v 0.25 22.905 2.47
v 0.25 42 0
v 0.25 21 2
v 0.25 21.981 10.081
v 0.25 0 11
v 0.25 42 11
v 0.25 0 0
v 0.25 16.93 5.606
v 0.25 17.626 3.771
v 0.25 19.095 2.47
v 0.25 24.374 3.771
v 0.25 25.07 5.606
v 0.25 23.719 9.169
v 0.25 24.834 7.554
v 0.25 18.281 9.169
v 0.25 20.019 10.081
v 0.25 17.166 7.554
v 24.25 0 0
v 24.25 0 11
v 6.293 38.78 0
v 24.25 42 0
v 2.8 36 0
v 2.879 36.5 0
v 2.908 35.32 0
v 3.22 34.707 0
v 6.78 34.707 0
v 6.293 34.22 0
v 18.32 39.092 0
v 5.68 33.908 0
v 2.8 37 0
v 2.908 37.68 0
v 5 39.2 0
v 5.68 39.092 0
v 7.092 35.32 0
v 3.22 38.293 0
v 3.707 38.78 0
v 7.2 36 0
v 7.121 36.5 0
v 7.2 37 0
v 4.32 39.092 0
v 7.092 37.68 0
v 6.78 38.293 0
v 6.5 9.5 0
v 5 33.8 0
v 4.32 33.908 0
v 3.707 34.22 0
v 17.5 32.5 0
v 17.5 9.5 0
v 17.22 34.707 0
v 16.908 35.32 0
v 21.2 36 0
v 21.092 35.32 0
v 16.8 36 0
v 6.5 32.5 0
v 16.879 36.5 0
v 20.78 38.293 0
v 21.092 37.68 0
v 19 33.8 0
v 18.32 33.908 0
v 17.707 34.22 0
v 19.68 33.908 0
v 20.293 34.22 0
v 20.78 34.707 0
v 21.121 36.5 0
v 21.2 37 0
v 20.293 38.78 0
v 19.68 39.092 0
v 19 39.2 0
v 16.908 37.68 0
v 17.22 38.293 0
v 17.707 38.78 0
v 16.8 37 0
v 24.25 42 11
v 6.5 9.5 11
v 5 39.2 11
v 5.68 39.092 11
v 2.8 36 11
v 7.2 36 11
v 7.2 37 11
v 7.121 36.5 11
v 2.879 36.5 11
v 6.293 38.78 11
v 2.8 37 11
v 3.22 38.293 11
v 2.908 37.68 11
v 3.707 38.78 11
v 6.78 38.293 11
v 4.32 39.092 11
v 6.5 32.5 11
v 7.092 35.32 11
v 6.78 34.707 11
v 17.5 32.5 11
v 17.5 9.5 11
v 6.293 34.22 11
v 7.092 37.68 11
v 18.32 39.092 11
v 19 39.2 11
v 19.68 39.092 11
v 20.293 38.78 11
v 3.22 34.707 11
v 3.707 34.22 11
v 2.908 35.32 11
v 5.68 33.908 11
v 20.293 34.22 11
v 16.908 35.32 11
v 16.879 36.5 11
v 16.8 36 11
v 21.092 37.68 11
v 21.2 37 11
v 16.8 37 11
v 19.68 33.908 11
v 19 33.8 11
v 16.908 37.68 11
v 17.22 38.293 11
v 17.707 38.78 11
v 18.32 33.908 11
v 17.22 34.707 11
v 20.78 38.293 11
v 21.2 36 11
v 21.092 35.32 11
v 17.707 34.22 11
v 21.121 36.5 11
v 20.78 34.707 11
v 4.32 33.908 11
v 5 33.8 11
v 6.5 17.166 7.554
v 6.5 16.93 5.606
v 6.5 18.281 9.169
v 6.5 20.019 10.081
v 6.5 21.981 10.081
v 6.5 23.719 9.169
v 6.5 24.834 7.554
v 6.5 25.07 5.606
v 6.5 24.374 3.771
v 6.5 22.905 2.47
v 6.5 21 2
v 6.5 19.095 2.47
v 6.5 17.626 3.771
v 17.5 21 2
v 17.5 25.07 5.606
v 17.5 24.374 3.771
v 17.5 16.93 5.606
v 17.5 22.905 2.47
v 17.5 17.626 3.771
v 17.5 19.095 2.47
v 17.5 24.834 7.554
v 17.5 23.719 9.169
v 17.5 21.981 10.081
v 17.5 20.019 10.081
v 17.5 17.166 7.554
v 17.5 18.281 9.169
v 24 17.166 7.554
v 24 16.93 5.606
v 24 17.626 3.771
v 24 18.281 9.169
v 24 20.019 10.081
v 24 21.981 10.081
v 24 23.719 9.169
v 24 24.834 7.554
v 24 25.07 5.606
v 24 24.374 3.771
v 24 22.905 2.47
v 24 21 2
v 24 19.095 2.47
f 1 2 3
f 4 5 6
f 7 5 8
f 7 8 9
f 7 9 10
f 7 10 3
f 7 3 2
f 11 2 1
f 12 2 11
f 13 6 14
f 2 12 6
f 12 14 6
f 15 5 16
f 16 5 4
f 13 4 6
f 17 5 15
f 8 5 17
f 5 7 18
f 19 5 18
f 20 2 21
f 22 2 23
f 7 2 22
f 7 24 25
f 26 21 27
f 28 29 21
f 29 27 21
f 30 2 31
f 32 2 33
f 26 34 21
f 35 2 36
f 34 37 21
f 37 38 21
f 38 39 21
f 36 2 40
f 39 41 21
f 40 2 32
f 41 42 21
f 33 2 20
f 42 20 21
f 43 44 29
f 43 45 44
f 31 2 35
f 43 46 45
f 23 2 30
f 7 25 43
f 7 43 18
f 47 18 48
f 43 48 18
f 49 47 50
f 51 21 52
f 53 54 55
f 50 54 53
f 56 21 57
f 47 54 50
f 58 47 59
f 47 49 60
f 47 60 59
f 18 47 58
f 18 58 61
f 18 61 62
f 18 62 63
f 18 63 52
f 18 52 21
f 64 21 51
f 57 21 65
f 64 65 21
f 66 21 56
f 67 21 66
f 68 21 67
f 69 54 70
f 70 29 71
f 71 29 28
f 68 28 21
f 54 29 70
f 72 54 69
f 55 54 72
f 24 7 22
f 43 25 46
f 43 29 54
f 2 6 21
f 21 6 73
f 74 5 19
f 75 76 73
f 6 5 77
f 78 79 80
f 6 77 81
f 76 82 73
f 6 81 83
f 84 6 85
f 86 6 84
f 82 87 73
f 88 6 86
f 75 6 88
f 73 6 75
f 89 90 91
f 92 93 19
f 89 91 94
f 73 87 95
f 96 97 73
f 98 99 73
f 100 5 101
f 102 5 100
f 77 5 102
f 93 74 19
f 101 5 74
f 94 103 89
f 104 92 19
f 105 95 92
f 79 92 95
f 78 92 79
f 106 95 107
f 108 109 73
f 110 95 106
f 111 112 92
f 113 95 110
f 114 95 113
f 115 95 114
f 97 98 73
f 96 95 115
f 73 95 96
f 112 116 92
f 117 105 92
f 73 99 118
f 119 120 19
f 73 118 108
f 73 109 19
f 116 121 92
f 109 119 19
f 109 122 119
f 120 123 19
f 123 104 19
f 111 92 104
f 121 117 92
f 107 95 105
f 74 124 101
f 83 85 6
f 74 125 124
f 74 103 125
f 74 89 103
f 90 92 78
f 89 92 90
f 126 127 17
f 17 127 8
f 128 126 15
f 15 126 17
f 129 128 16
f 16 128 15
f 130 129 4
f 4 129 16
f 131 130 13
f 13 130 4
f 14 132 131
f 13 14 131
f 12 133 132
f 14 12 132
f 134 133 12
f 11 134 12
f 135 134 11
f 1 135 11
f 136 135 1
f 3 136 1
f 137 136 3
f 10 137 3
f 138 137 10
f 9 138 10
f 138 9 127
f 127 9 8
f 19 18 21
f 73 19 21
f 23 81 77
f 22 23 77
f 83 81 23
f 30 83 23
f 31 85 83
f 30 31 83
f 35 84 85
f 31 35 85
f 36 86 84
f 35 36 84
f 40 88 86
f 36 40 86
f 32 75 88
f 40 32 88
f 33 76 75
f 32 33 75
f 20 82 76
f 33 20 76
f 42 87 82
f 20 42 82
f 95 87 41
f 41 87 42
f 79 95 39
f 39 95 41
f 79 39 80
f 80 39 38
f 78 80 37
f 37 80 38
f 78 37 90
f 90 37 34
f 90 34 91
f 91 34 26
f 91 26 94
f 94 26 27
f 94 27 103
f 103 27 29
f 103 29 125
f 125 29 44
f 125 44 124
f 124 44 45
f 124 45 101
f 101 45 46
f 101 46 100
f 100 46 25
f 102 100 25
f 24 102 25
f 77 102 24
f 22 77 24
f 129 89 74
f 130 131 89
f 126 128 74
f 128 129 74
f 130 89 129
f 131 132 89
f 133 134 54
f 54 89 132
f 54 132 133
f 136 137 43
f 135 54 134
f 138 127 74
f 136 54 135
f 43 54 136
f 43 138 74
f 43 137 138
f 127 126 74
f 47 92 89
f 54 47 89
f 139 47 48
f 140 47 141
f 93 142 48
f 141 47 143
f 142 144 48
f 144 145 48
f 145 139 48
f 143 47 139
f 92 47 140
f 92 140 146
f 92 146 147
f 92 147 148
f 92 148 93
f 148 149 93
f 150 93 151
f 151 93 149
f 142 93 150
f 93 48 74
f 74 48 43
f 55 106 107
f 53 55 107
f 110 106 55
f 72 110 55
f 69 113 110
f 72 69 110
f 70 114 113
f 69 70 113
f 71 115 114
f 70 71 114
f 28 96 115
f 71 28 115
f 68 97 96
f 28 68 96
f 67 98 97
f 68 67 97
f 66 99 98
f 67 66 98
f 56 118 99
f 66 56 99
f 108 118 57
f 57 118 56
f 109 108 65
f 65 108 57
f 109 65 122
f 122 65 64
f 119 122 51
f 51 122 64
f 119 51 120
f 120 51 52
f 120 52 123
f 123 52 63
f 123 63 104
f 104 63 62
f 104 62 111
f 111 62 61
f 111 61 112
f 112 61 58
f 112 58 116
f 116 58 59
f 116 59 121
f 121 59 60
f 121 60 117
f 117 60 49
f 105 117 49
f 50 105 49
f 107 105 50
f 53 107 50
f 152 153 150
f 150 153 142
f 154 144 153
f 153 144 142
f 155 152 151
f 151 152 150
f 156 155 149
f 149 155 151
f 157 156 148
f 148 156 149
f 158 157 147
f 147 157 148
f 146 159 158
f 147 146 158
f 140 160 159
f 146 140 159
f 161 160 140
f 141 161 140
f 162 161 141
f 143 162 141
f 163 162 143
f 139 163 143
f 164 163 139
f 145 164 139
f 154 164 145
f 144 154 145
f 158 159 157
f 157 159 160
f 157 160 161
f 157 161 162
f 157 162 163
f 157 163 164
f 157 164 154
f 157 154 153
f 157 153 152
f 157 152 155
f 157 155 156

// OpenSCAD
// PRUSA iteration3
// NEMA 17 extruder idler
// GNU GPL v3
// Josef Průša <iam@josefprusa.cz> and contributors
// http://www.reprap.org/wiki/Prusa_Mendel
// http://prusamendel.org


module extruder_idler_base(){
 translate([0.25,0,0]) cube([24,42,8+3]);
	
}

module extruder_idler_holes(){
 translate([12,21,0]){
  // Main cutout
  cube([11,23,25], center= true);
  // Idler shaft
  translate([-12,0,4.1+2])rotate([0,90,0])cylinder(r=4.1, h=24);
  // Screw holes
  //translate([7,-16,-1])cylinder(r=2.2, h=24);
  //translate([-7,-16,-1])cylinder(r=2.2, h=24);
  translate([7,16,-1])cylinder(r=2.2, h=24, $fn=20);
  translate([-7,16,-1])cylinder(r=2.2, h=24, $fn=20);

  translate([7,15,-1])cylinder(r=2.2, h=24, $fn=20);
  translate([-7,15,-1])cylinder(r=2.2, h=24, $fn=20);
 }
}


// Idler final part
module idler(){
 difference(){
  extruder_idler_base();
  extruder_idler_holes();
 }
}

idler();
